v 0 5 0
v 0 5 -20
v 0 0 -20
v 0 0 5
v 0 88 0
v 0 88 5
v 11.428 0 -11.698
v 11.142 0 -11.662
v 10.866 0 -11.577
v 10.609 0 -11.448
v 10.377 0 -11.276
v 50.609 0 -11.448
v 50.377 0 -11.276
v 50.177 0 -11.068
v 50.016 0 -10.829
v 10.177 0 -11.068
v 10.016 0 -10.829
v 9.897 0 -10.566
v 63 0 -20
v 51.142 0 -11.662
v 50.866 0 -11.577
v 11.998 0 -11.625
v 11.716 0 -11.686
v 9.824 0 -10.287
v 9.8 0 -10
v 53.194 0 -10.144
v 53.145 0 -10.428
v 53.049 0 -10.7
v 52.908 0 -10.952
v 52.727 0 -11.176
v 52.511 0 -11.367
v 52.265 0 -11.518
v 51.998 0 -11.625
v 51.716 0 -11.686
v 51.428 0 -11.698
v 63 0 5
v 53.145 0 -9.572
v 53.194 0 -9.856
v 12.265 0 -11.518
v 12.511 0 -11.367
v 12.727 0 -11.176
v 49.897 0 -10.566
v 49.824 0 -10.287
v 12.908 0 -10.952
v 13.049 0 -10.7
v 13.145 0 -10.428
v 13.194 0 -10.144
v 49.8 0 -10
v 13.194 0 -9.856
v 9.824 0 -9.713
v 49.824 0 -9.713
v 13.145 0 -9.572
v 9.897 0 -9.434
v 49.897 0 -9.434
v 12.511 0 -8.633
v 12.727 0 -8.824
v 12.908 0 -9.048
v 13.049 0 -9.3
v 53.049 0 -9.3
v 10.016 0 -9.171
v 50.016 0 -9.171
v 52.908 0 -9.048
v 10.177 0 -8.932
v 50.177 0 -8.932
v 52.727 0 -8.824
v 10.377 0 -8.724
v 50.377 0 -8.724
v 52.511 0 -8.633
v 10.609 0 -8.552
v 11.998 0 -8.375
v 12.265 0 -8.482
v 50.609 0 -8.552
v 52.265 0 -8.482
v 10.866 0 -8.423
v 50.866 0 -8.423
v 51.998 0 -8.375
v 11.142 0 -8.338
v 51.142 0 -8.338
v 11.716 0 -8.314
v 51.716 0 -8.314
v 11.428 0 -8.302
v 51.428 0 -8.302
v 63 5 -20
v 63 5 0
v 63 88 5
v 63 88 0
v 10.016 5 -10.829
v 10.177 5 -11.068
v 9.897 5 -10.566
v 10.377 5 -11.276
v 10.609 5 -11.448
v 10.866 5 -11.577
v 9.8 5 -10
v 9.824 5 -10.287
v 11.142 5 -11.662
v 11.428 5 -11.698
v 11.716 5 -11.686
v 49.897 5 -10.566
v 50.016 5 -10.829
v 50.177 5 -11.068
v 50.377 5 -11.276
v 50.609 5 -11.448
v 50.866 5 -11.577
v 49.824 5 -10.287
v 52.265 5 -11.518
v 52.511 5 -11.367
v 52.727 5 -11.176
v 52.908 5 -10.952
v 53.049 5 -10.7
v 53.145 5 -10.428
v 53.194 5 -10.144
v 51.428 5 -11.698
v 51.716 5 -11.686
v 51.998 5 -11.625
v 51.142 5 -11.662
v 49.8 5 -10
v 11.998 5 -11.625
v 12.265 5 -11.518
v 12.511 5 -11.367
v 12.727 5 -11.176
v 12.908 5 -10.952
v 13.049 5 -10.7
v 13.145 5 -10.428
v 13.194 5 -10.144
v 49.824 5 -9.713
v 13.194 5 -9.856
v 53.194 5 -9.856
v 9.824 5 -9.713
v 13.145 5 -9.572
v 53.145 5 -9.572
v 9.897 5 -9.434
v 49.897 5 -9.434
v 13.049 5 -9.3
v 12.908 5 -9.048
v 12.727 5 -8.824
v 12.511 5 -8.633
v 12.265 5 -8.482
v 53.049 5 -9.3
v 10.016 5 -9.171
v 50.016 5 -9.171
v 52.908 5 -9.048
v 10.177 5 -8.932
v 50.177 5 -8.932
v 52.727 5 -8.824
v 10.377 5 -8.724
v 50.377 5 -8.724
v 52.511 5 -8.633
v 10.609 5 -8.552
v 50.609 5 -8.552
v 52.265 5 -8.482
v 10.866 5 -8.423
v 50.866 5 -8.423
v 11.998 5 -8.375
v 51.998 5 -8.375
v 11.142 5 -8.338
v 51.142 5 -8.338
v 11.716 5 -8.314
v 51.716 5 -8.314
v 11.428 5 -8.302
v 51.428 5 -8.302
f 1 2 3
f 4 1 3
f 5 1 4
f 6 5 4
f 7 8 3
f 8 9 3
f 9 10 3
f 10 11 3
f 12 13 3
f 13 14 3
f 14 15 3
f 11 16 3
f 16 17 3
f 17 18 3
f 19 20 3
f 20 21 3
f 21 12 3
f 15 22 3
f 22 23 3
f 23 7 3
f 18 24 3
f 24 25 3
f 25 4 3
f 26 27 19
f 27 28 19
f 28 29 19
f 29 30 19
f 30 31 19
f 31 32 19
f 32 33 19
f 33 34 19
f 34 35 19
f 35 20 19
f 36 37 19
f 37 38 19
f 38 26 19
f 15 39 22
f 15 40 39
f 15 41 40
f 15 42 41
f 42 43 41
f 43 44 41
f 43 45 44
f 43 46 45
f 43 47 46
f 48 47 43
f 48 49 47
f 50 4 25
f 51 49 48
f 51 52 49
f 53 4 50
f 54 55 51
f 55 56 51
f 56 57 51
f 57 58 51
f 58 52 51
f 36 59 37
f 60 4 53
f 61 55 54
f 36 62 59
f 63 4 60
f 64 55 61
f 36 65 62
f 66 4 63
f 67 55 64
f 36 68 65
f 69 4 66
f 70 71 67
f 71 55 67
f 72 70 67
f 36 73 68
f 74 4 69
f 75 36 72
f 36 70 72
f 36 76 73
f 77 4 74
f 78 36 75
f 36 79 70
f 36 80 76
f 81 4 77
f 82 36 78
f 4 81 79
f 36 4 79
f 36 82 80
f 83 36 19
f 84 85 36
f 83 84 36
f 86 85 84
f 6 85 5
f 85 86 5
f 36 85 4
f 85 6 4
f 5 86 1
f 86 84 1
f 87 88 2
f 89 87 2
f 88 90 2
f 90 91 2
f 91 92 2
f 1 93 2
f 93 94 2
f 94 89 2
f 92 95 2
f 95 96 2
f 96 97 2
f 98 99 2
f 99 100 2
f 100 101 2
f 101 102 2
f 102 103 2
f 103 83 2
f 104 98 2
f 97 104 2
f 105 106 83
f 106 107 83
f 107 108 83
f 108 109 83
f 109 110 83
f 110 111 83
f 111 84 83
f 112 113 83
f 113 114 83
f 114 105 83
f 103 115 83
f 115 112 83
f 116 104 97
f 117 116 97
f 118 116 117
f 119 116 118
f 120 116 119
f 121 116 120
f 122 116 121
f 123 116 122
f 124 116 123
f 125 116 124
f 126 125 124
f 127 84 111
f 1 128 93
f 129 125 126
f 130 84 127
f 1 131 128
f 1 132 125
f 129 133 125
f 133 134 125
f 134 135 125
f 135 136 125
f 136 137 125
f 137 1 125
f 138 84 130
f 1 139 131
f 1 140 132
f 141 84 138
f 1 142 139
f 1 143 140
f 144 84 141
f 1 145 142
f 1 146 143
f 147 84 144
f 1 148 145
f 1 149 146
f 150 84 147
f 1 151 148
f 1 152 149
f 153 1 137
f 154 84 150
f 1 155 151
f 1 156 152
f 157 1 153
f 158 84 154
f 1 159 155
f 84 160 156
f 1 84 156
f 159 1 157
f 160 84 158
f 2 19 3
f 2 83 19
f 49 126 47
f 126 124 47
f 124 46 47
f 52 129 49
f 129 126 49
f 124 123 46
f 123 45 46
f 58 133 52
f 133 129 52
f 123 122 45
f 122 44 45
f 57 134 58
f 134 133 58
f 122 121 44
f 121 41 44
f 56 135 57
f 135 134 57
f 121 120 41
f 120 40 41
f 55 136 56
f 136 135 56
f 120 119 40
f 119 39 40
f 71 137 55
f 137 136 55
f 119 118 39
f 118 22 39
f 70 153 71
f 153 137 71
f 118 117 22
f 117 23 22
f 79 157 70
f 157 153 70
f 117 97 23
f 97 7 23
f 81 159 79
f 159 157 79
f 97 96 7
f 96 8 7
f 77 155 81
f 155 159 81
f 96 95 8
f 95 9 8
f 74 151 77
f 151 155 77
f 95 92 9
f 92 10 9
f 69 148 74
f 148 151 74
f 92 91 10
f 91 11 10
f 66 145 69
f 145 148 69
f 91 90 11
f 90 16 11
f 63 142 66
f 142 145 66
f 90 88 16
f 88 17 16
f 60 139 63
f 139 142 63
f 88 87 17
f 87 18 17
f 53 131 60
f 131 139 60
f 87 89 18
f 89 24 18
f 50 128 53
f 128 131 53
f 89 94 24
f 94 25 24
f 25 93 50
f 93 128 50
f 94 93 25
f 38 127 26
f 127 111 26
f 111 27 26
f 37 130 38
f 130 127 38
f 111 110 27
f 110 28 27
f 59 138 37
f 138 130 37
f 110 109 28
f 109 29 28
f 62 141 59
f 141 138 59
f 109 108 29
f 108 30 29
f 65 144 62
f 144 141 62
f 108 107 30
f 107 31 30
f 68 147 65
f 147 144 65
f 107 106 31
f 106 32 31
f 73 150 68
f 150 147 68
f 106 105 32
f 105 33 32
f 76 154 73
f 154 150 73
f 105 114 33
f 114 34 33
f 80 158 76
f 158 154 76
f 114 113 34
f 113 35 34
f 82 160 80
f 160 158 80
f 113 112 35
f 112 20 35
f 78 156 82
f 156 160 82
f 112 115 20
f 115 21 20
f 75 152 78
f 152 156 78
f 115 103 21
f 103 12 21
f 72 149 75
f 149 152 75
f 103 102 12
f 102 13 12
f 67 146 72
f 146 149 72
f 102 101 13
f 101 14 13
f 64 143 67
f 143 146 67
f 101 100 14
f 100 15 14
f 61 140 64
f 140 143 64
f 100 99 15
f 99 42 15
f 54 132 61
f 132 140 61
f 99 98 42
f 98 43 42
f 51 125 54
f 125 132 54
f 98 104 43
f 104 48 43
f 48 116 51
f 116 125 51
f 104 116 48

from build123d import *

# Parameters (mm, degrees)
SKETCH1_W           = 63
SKETCH1_H           = 88
BOSS_EXTRUDE1_DEPTH = 5
SKETCH2_W           = 63
SKETCH2_H           = 5
BOSS_EXTRUDE2_DEPTH = 20
SKETCH3_R           = 1.7
CUT_EXTRUDE1_DEPTH  = 107.103722838


with BuildPart() as part:
    # Sketch1 → Boss-Extrude1 (new body)
    with BuildSketch(Plane.XY):
        with Locations((31.5, 44)):
            Rectangle(SKETCH1_W, SKETCH1_H)
    extrude(amount=BOSS_EXTRUDE1_DEPTH)

    # Sketch2 → Boss-Extrude2 (add)
    with BuildSketch(Plane(origin=(0, 0, 0), x_dir=(-1, 0, 0), z_dir=(0, 0, -1))):
        with Locations((-31.5, 2.5)):
            Rectangle(SKETCH2_W, SKETCH2_H)
    extrude(amount=BOSS_EXTRUDE2_DEPTH)

    # Sketch3 → Cut-Extrude1 (cut, through all)
    with BuildSketch(Plane(origin=(0, 5, 0), x_dir=(1, 0, 0), z_dir=(0, 1, 0))):
        with Locations(Location((51.5, 10, 0), (0, 0, 180))):
            Circle(SKETCH3_R)
        with Locations(Location((11.5, 10, 0), (0, 0, 180))):
            Circle(SKETCH3_R)
    extrude(amount=-CUT_EXTRUDE1_DEPTH, mode=Mode.SUBTRACT)


solid = part.part
